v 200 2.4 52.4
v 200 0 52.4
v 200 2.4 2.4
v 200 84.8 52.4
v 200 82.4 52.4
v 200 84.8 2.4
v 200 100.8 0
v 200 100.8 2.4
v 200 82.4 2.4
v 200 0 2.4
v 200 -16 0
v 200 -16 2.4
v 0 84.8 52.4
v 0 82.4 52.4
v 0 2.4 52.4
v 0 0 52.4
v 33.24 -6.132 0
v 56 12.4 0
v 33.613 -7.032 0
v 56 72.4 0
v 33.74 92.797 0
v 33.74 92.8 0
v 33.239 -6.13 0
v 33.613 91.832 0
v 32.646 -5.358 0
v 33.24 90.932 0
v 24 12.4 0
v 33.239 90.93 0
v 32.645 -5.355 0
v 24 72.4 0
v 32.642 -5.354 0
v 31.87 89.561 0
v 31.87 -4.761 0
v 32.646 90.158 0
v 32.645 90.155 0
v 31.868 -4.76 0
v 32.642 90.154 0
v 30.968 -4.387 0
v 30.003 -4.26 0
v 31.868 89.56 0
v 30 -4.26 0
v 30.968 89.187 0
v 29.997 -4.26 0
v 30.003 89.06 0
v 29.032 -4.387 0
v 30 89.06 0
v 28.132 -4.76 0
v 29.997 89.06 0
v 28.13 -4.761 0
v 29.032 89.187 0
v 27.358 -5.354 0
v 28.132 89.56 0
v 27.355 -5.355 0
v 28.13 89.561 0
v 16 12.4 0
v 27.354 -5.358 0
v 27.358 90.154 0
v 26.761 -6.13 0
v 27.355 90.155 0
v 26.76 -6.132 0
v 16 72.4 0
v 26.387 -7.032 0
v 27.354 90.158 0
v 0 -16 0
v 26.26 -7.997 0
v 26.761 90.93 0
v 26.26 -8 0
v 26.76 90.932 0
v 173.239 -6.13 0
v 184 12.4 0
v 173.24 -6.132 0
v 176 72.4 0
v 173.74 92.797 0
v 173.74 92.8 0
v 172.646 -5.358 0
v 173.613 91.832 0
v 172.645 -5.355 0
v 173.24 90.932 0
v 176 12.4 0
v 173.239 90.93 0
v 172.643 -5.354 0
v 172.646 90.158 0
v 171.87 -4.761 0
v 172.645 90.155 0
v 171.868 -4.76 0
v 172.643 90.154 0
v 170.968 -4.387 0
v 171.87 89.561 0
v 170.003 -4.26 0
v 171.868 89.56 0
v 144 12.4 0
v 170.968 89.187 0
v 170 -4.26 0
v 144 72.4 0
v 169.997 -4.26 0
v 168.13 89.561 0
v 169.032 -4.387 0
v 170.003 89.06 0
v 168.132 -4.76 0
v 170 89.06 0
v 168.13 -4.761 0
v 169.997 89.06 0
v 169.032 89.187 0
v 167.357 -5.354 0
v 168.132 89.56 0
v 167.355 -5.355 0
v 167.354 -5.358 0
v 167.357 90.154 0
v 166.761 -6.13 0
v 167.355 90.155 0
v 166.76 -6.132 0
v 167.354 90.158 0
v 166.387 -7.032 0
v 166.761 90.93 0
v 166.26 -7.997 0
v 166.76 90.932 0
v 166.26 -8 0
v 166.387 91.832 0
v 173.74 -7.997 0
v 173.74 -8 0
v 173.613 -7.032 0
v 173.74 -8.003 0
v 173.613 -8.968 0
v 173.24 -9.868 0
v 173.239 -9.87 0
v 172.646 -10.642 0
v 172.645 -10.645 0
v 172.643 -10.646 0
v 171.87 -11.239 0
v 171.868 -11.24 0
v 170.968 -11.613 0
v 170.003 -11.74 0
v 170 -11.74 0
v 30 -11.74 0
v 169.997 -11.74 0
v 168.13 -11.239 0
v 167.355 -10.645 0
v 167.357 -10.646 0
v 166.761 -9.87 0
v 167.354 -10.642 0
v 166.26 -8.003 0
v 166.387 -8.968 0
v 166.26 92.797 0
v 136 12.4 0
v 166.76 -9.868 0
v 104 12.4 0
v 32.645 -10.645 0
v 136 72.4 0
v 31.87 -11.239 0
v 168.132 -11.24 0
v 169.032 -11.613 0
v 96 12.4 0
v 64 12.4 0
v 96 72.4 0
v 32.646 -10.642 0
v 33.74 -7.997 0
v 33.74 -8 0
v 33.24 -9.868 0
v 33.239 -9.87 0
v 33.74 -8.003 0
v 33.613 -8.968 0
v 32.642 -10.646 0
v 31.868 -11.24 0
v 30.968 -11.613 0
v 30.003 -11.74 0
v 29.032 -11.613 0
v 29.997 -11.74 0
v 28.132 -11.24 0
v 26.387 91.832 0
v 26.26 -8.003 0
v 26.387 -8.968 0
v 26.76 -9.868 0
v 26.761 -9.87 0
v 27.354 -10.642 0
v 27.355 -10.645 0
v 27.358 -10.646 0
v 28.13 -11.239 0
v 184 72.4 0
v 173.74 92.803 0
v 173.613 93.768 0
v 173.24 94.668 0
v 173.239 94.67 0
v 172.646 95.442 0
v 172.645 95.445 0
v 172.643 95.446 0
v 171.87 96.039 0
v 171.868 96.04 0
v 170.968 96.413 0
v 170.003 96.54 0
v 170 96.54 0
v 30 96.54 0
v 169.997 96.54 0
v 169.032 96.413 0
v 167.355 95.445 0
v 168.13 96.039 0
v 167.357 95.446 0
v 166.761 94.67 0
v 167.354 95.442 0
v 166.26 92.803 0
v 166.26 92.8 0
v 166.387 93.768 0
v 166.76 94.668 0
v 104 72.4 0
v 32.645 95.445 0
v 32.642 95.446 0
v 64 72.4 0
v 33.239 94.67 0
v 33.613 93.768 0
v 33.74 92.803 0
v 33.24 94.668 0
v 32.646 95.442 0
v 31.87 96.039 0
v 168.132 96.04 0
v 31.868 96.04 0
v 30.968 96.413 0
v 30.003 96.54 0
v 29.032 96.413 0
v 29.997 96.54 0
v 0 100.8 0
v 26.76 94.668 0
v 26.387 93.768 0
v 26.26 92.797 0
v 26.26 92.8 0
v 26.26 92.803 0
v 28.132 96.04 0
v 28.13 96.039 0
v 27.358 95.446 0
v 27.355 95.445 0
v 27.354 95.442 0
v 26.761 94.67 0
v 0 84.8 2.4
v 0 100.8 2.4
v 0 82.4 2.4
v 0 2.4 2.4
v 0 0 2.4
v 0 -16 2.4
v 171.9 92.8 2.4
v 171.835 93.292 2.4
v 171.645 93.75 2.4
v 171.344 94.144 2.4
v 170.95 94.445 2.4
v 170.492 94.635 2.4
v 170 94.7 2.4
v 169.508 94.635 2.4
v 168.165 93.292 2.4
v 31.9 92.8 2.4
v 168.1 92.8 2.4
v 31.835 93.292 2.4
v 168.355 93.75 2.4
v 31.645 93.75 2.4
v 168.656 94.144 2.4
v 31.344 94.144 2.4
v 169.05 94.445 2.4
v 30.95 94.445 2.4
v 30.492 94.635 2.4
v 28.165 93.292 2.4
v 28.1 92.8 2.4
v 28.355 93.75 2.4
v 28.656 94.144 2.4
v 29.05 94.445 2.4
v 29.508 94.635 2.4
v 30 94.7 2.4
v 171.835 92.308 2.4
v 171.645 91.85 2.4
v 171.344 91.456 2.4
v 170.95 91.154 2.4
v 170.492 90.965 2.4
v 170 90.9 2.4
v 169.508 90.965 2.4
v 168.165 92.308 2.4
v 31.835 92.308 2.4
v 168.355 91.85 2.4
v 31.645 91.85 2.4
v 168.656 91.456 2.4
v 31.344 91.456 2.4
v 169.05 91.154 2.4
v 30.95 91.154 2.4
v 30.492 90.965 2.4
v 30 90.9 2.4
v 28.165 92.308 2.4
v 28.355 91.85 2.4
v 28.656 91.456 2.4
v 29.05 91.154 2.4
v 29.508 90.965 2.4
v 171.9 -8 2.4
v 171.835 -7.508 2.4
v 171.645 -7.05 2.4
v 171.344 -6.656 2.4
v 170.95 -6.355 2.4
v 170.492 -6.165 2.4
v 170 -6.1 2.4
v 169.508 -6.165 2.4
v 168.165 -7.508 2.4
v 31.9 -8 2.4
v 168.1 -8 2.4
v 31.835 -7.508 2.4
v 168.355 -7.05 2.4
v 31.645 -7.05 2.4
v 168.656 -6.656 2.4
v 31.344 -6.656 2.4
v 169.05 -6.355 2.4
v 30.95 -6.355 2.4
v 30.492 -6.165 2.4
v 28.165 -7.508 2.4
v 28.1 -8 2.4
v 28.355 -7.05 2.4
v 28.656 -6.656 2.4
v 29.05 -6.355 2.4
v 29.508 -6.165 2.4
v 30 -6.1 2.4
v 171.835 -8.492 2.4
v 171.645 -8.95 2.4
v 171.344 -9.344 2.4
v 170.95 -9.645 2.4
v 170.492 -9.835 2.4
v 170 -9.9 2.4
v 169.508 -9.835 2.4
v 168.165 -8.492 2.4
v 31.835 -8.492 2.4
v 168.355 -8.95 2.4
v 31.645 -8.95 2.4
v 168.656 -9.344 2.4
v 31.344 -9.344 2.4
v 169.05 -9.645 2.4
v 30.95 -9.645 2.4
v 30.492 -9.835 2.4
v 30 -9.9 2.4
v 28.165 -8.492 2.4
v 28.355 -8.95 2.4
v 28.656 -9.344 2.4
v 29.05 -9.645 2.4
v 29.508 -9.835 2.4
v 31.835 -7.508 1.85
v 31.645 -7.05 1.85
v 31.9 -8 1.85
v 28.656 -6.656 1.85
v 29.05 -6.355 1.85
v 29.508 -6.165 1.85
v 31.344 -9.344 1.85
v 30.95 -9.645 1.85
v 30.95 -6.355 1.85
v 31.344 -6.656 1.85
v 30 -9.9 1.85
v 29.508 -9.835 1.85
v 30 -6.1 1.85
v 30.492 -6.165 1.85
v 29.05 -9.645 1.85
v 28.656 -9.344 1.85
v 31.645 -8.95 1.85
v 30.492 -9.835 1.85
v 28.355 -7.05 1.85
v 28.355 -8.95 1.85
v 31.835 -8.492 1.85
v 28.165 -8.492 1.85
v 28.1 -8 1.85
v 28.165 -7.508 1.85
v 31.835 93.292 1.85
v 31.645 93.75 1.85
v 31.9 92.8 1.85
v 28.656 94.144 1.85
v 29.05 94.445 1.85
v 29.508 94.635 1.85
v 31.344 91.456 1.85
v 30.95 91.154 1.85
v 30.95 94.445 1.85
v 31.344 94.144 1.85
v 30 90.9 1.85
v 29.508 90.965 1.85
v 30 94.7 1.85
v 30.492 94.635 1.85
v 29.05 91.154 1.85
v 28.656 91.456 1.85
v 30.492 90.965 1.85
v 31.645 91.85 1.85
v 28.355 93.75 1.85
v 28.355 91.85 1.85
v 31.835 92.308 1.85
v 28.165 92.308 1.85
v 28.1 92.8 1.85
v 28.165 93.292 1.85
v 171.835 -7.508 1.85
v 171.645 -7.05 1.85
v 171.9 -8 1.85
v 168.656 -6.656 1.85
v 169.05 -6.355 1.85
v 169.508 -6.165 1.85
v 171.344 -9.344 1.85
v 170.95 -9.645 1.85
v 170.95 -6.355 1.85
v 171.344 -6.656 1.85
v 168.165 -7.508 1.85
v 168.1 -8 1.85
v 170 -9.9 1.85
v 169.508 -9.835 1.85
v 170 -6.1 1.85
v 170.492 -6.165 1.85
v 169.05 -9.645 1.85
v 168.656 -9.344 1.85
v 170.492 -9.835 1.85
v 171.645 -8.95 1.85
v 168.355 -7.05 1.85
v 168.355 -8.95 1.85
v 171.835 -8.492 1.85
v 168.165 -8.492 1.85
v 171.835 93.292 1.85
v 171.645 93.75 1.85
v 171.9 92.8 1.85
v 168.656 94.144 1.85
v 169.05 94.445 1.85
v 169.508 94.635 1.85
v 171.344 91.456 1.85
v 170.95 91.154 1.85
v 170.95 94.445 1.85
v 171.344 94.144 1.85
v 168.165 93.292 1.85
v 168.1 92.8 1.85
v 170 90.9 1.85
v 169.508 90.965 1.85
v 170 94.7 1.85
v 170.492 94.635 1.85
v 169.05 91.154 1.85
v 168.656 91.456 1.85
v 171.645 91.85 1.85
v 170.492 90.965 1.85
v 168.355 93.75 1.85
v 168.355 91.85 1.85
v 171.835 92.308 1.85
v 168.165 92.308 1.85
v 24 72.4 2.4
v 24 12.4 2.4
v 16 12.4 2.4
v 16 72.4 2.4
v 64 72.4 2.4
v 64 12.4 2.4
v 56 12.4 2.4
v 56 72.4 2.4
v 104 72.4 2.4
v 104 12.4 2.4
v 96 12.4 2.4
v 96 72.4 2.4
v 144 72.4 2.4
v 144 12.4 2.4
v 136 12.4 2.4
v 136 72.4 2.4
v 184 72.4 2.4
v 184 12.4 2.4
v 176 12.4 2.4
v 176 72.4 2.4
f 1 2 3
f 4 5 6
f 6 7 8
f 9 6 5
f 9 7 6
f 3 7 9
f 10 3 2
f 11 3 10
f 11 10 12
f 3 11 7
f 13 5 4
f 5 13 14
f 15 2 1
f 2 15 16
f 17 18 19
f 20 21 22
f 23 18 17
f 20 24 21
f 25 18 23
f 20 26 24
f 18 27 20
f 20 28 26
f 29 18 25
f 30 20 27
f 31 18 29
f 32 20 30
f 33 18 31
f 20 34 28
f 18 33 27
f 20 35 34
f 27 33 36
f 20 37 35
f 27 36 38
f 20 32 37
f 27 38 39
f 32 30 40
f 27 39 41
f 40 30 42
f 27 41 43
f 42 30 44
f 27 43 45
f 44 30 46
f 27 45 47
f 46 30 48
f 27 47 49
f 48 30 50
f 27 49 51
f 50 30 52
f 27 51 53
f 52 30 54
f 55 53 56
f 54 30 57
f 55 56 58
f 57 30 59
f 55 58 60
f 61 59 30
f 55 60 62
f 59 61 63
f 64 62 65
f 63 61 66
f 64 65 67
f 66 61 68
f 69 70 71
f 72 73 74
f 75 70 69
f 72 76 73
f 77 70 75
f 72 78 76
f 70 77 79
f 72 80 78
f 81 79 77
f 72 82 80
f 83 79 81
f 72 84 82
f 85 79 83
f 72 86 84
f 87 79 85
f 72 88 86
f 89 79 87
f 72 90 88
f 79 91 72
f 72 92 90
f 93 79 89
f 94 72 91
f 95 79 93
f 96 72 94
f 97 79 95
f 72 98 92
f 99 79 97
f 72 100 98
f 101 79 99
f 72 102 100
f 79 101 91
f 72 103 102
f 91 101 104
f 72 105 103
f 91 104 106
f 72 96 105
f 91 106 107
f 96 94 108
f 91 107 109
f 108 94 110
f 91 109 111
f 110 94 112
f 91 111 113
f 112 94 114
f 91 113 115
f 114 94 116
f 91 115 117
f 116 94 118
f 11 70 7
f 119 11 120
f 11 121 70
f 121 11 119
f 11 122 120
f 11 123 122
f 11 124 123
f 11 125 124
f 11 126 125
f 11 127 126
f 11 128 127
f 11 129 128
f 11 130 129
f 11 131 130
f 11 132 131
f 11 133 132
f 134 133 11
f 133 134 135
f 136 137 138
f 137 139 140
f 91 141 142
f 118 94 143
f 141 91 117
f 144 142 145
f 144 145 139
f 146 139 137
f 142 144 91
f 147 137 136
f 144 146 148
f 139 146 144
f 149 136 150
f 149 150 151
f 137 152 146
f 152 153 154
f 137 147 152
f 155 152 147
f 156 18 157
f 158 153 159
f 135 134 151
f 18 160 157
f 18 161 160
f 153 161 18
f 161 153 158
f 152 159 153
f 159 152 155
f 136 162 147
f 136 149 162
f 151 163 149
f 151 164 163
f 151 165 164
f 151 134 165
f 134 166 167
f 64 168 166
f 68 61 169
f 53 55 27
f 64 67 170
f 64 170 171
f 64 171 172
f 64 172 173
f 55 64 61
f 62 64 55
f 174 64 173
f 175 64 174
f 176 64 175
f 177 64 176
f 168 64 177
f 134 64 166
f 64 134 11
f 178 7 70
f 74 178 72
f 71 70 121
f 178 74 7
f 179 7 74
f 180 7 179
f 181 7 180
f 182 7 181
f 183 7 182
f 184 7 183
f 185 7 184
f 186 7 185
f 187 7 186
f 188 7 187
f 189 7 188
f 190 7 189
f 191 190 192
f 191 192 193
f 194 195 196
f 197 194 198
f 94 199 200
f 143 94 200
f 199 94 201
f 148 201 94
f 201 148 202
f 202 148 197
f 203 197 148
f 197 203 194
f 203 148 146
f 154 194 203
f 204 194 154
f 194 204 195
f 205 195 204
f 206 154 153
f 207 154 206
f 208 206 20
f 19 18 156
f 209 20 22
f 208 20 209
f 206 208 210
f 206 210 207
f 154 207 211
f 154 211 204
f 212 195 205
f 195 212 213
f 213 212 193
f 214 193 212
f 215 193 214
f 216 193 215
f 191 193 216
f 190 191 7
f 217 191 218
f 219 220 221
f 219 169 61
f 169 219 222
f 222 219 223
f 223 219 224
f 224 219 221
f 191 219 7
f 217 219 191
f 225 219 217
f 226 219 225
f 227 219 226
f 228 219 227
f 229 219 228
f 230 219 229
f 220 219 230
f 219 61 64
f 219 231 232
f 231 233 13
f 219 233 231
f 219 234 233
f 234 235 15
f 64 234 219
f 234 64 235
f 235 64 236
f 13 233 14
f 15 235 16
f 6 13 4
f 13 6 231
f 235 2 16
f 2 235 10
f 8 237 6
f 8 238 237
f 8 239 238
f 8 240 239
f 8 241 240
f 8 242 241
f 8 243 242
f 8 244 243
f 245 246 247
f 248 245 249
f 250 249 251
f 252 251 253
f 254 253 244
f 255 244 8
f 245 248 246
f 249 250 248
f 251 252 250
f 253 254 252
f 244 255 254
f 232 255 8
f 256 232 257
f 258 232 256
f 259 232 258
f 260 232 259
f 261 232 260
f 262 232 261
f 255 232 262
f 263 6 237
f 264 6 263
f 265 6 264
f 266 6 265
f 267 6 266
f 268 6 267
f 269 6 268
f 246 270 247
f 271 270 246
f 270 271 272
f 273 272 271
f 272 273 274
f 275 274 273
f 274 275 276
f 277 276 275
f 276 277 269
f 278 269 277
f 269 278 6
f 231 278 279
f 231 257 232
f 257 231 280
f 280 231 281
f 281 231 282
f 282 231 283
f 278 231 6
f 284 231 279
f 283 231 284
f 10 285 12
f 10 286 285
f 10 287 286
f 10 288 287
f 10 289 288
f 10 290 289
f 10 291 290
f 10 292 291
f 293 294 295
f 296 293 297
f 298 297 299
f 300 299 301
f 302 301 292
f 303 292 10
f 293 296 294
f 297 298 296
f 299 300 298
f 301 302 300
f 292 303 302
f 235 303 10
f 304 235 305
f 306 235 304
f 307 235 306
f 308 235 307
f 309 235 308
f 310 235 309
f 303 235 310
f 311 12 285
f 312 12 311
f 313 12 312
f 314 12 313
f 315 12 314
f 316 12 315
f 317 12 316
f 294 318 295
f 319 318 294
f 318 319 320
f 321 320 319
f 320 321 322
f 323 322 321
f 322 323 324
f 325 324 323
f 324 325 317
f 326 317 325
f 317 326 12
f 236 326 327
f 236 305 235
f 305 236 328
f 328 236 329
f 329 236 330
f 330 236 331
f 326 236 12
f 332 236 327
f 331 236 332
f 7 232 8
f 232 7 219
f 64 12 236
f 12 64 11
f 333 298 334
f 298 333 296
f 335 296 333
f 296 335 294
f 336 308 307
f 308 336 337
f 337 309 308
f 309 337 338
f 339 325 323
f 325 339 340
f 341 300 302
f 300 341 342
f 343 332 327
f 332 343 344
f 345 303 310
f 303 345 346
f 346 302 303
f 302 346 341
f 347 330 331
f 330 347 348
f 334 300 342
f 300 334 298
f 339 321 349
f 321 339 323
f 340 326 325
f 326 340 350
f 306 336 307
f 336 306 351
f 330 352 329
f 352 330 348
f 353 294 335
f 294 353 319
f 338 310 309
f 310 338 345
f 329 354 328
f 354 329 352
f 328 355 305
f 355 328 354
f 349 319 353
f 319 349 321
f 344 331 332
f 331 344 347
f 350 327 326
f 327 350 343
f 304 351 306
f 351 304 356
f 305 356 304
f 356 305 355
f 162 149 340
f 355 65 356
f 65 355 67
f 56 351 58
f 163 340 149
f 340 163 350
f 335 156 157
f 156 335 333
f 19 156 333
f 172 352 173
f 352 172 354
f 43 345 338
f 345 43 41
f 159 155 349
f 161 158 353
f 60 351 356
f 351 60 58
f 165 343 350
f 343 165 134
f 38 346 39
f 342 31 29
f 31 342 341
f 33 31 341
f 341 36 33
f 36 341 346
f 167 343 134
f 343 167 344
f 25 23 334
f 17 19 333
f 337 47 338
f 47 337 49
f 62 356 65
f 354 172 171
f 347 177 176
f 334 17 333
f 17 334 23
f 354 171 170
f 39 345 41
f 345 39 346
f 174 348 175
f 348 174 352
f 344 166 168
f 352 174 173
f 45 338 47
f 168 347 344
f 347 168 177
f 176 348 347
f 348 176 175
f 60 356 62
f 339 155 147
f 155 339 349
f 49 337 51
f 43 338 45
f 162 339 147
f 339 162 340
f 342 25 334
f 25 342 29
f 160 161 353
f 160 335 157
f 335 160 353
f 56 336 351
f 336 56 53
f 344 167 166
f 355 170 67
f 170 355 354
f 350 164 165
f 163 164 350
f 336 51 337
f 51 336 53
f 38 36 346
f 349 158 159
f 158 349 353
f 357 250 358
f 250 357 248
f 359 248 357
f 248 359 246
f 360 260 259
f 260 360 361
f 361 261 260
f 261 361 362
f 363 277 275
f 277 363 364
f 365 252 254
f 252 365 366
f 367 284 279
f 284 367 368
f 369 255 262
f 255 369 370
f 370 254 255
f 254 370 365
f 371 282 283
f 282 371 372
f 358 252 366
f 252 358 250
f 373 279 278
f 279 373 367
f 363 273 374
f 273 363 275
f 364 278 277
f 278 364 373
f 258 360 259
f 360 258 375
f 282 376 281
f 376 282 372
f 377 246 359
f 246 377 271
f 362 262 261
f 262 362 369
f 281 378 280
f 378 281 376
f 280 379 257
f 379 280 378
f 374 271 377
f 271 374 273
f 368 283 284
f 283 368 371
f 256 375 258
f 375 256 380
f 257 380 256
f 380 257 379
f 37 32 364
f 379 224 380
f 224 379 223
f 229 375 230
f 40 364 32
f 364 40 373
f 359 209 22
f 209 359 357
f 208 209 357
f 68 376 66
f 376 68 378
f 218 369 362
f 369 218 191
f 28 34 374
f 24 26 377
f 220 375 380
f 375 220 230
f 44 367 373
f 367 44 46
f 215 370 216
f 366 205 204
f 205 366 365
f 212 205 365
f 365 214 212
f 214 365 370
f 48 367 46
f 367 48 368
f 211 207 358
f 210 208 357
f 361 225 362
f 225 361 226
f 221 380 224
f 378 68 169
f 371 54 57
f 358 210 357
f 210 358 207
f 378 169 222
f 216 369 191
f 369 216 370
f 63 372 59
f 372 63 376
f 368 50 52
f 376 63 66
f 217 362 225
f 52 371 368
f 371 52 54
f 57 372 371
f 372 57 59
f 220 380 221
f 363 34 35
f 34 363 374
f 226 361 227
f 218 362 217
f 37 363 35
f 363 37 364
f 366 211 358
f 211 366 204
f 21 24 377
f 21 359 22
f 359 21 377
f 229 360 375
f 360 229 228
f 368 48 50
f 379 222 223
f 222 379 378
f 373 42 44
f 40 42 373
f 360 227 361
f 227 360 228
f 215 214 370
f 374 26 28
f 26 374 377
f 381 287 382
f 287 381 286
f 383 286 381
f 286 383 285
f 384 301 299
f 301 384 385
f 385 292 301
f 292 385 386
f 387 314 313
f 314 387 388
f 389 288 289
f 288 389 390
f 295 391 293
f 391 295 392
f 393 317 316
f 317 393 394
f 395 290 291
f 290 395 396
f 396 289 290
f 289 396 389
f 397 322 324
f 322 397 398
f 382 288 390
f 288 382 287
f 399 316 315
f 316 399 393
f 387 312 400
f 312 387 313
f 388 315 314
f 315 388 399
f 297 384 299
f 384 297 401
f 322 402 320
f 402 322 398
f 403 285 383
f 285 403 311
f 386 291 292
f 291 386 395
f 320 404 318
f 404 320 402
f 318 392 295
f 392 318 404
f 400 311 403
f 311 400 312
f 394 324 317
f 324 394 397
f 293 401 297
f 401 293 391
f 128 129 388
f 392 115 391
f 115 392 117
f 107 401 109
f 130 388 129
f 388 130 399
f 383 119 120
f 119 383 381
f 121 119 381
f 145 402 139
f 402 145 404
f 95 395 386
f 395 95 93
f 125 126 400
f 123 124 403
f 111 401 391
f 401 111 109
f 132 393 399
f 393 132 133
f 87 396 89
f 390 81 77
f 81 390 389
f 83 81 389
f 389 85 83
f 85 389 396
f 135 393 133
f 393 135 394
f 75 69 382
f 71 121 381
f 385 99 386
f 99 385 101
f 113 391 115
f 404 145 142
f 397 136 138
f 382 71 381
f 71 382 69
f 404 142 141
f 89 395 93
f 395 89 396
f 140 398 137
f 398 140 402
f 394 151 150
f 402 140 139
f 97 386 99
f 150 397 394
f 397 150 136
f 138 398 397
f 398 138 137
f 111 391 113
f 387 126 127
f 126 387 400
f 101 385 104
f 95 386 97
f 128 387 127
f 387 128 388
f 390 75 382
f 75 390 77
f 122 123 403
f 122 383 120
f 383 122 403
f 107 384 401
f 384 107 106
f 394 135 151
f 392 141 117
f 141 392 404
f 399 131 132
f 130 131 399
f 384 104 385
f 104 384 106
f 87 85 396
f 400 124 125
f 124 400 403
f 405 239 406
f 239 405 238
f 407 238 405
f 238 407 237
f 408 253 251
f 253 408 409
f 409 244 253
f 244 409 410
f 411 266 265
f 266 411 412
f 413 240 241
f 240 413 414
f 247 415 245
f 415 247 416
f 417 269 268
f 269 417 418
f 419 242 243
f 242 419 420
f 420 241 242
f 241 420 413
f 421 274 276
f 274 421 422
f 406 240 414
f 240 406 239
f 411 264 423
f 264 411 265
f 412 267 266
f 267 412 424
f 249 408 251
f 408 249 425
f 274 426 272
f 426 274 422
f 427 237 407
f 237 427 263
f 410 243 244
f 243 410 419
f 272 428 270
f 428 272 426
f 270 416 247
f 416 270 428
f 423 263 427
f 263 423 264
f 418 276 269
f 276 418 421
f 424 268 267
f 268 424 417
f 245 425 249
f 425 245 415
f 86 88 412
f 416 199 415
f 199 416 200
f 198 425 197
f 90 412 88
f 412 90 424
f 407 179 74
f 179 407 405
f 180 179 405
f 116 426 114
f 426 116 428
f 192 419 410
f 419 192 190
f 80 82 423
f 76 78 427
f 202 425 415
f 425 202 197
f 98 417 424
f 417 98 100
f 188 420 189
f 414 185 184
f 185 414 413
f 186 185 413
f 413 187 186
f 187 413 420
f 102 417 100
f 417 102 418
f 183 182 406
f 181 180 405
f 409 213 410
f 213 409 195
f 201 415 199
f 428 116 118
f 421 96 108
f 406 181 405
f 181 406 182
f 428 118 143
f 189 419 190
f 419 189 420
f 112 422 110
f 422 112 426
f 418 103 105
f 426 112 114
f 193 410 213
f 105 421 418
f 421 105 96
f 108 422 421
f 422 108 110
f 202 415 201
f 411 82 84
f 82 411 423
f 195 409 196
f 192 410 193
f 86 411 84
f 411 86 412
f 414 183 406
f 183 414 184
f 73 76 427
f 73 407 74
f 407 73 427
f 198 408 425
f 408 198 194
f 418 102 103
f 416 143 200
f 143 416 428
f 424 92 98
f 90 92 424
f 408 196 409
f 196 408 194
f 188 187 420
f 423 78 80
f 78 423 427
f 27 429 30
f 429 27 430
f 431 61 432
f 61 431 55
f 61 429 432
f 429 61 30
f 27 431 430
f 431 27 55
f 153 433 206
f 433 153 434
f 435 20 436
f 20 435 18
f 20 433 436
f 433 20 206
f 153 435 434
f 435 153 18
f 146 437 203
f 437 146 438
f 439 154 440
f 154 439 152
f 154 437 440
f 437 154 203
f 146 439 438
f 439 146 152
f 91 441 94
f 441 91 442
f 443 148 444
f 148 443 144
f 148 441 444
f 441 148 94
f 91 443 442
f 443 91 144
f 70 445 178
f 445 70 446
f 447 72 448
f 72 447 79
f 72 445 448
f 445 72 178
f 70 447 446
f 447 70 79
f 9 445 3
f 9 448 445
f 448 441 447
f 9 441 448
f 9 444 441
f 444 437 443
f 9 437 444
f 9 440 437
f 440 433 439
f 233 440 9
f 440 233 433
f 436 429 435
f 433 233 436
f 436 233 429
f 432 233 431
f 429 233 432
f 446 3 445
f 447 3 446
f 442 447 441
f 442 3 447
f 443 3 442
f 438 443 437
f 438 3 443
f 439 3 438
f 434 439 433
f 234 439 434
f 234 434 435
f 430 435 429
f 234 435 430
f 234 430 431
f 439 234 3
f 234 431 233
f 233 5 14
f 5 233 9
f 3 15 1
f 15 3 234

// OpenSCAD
// Under-desk cable tray, a 200 mm segment. Screws to the underside of the top behind the
// rail (it fits in the 35 cm between the rail and the wall edge, or anywhere under the
// wings) and takes the power bricks and slack. Chain segments end to end. Open top, drain
// slots in the floor so dust does not collect, two screw tabs.
// Screws: #6 x 5/8 in into the desk top, 13 mm penetration. Print open side up, PETG or ABS.

seg  = 200;   // length
w    = 80;    // inside width
h    = 50;    // inside depth
wall = 2.4;
tab  = 16;
hole = 3.8;
csk  = 7.5;

difference() {
    union() {
        cube([seg, w + 2 * wall, h + wall]);
        translate([0, -tab, 0]) cube([seg, w + 2 * wall + 2 * tab, wall]);    // tabs run the full length, screw anywhere along them
    }
    translate([-1, wall, wall]) cube([seg + 2, w, h + 1]);                     // the trough
    for (x = [30, seg - 30], y = [-tab / 2, w + 2 * wall + tab / 2]) translate([x, y, -1]) {
        cylinder(d = hole, h = wall + 2, $fn = 24);
        translate([0, 0, 1 - 0.01]) cylinder(d1 = csk, d2 = hole, h = (csk - hole) / 2 + 0.01, $fn = 24);
    }
    for (x = [20 : 40 : seg - 20]) translate([x - 4, wall + 10, -1]) cube([8, w - 20, wall + 2]);   // drain slots
}
